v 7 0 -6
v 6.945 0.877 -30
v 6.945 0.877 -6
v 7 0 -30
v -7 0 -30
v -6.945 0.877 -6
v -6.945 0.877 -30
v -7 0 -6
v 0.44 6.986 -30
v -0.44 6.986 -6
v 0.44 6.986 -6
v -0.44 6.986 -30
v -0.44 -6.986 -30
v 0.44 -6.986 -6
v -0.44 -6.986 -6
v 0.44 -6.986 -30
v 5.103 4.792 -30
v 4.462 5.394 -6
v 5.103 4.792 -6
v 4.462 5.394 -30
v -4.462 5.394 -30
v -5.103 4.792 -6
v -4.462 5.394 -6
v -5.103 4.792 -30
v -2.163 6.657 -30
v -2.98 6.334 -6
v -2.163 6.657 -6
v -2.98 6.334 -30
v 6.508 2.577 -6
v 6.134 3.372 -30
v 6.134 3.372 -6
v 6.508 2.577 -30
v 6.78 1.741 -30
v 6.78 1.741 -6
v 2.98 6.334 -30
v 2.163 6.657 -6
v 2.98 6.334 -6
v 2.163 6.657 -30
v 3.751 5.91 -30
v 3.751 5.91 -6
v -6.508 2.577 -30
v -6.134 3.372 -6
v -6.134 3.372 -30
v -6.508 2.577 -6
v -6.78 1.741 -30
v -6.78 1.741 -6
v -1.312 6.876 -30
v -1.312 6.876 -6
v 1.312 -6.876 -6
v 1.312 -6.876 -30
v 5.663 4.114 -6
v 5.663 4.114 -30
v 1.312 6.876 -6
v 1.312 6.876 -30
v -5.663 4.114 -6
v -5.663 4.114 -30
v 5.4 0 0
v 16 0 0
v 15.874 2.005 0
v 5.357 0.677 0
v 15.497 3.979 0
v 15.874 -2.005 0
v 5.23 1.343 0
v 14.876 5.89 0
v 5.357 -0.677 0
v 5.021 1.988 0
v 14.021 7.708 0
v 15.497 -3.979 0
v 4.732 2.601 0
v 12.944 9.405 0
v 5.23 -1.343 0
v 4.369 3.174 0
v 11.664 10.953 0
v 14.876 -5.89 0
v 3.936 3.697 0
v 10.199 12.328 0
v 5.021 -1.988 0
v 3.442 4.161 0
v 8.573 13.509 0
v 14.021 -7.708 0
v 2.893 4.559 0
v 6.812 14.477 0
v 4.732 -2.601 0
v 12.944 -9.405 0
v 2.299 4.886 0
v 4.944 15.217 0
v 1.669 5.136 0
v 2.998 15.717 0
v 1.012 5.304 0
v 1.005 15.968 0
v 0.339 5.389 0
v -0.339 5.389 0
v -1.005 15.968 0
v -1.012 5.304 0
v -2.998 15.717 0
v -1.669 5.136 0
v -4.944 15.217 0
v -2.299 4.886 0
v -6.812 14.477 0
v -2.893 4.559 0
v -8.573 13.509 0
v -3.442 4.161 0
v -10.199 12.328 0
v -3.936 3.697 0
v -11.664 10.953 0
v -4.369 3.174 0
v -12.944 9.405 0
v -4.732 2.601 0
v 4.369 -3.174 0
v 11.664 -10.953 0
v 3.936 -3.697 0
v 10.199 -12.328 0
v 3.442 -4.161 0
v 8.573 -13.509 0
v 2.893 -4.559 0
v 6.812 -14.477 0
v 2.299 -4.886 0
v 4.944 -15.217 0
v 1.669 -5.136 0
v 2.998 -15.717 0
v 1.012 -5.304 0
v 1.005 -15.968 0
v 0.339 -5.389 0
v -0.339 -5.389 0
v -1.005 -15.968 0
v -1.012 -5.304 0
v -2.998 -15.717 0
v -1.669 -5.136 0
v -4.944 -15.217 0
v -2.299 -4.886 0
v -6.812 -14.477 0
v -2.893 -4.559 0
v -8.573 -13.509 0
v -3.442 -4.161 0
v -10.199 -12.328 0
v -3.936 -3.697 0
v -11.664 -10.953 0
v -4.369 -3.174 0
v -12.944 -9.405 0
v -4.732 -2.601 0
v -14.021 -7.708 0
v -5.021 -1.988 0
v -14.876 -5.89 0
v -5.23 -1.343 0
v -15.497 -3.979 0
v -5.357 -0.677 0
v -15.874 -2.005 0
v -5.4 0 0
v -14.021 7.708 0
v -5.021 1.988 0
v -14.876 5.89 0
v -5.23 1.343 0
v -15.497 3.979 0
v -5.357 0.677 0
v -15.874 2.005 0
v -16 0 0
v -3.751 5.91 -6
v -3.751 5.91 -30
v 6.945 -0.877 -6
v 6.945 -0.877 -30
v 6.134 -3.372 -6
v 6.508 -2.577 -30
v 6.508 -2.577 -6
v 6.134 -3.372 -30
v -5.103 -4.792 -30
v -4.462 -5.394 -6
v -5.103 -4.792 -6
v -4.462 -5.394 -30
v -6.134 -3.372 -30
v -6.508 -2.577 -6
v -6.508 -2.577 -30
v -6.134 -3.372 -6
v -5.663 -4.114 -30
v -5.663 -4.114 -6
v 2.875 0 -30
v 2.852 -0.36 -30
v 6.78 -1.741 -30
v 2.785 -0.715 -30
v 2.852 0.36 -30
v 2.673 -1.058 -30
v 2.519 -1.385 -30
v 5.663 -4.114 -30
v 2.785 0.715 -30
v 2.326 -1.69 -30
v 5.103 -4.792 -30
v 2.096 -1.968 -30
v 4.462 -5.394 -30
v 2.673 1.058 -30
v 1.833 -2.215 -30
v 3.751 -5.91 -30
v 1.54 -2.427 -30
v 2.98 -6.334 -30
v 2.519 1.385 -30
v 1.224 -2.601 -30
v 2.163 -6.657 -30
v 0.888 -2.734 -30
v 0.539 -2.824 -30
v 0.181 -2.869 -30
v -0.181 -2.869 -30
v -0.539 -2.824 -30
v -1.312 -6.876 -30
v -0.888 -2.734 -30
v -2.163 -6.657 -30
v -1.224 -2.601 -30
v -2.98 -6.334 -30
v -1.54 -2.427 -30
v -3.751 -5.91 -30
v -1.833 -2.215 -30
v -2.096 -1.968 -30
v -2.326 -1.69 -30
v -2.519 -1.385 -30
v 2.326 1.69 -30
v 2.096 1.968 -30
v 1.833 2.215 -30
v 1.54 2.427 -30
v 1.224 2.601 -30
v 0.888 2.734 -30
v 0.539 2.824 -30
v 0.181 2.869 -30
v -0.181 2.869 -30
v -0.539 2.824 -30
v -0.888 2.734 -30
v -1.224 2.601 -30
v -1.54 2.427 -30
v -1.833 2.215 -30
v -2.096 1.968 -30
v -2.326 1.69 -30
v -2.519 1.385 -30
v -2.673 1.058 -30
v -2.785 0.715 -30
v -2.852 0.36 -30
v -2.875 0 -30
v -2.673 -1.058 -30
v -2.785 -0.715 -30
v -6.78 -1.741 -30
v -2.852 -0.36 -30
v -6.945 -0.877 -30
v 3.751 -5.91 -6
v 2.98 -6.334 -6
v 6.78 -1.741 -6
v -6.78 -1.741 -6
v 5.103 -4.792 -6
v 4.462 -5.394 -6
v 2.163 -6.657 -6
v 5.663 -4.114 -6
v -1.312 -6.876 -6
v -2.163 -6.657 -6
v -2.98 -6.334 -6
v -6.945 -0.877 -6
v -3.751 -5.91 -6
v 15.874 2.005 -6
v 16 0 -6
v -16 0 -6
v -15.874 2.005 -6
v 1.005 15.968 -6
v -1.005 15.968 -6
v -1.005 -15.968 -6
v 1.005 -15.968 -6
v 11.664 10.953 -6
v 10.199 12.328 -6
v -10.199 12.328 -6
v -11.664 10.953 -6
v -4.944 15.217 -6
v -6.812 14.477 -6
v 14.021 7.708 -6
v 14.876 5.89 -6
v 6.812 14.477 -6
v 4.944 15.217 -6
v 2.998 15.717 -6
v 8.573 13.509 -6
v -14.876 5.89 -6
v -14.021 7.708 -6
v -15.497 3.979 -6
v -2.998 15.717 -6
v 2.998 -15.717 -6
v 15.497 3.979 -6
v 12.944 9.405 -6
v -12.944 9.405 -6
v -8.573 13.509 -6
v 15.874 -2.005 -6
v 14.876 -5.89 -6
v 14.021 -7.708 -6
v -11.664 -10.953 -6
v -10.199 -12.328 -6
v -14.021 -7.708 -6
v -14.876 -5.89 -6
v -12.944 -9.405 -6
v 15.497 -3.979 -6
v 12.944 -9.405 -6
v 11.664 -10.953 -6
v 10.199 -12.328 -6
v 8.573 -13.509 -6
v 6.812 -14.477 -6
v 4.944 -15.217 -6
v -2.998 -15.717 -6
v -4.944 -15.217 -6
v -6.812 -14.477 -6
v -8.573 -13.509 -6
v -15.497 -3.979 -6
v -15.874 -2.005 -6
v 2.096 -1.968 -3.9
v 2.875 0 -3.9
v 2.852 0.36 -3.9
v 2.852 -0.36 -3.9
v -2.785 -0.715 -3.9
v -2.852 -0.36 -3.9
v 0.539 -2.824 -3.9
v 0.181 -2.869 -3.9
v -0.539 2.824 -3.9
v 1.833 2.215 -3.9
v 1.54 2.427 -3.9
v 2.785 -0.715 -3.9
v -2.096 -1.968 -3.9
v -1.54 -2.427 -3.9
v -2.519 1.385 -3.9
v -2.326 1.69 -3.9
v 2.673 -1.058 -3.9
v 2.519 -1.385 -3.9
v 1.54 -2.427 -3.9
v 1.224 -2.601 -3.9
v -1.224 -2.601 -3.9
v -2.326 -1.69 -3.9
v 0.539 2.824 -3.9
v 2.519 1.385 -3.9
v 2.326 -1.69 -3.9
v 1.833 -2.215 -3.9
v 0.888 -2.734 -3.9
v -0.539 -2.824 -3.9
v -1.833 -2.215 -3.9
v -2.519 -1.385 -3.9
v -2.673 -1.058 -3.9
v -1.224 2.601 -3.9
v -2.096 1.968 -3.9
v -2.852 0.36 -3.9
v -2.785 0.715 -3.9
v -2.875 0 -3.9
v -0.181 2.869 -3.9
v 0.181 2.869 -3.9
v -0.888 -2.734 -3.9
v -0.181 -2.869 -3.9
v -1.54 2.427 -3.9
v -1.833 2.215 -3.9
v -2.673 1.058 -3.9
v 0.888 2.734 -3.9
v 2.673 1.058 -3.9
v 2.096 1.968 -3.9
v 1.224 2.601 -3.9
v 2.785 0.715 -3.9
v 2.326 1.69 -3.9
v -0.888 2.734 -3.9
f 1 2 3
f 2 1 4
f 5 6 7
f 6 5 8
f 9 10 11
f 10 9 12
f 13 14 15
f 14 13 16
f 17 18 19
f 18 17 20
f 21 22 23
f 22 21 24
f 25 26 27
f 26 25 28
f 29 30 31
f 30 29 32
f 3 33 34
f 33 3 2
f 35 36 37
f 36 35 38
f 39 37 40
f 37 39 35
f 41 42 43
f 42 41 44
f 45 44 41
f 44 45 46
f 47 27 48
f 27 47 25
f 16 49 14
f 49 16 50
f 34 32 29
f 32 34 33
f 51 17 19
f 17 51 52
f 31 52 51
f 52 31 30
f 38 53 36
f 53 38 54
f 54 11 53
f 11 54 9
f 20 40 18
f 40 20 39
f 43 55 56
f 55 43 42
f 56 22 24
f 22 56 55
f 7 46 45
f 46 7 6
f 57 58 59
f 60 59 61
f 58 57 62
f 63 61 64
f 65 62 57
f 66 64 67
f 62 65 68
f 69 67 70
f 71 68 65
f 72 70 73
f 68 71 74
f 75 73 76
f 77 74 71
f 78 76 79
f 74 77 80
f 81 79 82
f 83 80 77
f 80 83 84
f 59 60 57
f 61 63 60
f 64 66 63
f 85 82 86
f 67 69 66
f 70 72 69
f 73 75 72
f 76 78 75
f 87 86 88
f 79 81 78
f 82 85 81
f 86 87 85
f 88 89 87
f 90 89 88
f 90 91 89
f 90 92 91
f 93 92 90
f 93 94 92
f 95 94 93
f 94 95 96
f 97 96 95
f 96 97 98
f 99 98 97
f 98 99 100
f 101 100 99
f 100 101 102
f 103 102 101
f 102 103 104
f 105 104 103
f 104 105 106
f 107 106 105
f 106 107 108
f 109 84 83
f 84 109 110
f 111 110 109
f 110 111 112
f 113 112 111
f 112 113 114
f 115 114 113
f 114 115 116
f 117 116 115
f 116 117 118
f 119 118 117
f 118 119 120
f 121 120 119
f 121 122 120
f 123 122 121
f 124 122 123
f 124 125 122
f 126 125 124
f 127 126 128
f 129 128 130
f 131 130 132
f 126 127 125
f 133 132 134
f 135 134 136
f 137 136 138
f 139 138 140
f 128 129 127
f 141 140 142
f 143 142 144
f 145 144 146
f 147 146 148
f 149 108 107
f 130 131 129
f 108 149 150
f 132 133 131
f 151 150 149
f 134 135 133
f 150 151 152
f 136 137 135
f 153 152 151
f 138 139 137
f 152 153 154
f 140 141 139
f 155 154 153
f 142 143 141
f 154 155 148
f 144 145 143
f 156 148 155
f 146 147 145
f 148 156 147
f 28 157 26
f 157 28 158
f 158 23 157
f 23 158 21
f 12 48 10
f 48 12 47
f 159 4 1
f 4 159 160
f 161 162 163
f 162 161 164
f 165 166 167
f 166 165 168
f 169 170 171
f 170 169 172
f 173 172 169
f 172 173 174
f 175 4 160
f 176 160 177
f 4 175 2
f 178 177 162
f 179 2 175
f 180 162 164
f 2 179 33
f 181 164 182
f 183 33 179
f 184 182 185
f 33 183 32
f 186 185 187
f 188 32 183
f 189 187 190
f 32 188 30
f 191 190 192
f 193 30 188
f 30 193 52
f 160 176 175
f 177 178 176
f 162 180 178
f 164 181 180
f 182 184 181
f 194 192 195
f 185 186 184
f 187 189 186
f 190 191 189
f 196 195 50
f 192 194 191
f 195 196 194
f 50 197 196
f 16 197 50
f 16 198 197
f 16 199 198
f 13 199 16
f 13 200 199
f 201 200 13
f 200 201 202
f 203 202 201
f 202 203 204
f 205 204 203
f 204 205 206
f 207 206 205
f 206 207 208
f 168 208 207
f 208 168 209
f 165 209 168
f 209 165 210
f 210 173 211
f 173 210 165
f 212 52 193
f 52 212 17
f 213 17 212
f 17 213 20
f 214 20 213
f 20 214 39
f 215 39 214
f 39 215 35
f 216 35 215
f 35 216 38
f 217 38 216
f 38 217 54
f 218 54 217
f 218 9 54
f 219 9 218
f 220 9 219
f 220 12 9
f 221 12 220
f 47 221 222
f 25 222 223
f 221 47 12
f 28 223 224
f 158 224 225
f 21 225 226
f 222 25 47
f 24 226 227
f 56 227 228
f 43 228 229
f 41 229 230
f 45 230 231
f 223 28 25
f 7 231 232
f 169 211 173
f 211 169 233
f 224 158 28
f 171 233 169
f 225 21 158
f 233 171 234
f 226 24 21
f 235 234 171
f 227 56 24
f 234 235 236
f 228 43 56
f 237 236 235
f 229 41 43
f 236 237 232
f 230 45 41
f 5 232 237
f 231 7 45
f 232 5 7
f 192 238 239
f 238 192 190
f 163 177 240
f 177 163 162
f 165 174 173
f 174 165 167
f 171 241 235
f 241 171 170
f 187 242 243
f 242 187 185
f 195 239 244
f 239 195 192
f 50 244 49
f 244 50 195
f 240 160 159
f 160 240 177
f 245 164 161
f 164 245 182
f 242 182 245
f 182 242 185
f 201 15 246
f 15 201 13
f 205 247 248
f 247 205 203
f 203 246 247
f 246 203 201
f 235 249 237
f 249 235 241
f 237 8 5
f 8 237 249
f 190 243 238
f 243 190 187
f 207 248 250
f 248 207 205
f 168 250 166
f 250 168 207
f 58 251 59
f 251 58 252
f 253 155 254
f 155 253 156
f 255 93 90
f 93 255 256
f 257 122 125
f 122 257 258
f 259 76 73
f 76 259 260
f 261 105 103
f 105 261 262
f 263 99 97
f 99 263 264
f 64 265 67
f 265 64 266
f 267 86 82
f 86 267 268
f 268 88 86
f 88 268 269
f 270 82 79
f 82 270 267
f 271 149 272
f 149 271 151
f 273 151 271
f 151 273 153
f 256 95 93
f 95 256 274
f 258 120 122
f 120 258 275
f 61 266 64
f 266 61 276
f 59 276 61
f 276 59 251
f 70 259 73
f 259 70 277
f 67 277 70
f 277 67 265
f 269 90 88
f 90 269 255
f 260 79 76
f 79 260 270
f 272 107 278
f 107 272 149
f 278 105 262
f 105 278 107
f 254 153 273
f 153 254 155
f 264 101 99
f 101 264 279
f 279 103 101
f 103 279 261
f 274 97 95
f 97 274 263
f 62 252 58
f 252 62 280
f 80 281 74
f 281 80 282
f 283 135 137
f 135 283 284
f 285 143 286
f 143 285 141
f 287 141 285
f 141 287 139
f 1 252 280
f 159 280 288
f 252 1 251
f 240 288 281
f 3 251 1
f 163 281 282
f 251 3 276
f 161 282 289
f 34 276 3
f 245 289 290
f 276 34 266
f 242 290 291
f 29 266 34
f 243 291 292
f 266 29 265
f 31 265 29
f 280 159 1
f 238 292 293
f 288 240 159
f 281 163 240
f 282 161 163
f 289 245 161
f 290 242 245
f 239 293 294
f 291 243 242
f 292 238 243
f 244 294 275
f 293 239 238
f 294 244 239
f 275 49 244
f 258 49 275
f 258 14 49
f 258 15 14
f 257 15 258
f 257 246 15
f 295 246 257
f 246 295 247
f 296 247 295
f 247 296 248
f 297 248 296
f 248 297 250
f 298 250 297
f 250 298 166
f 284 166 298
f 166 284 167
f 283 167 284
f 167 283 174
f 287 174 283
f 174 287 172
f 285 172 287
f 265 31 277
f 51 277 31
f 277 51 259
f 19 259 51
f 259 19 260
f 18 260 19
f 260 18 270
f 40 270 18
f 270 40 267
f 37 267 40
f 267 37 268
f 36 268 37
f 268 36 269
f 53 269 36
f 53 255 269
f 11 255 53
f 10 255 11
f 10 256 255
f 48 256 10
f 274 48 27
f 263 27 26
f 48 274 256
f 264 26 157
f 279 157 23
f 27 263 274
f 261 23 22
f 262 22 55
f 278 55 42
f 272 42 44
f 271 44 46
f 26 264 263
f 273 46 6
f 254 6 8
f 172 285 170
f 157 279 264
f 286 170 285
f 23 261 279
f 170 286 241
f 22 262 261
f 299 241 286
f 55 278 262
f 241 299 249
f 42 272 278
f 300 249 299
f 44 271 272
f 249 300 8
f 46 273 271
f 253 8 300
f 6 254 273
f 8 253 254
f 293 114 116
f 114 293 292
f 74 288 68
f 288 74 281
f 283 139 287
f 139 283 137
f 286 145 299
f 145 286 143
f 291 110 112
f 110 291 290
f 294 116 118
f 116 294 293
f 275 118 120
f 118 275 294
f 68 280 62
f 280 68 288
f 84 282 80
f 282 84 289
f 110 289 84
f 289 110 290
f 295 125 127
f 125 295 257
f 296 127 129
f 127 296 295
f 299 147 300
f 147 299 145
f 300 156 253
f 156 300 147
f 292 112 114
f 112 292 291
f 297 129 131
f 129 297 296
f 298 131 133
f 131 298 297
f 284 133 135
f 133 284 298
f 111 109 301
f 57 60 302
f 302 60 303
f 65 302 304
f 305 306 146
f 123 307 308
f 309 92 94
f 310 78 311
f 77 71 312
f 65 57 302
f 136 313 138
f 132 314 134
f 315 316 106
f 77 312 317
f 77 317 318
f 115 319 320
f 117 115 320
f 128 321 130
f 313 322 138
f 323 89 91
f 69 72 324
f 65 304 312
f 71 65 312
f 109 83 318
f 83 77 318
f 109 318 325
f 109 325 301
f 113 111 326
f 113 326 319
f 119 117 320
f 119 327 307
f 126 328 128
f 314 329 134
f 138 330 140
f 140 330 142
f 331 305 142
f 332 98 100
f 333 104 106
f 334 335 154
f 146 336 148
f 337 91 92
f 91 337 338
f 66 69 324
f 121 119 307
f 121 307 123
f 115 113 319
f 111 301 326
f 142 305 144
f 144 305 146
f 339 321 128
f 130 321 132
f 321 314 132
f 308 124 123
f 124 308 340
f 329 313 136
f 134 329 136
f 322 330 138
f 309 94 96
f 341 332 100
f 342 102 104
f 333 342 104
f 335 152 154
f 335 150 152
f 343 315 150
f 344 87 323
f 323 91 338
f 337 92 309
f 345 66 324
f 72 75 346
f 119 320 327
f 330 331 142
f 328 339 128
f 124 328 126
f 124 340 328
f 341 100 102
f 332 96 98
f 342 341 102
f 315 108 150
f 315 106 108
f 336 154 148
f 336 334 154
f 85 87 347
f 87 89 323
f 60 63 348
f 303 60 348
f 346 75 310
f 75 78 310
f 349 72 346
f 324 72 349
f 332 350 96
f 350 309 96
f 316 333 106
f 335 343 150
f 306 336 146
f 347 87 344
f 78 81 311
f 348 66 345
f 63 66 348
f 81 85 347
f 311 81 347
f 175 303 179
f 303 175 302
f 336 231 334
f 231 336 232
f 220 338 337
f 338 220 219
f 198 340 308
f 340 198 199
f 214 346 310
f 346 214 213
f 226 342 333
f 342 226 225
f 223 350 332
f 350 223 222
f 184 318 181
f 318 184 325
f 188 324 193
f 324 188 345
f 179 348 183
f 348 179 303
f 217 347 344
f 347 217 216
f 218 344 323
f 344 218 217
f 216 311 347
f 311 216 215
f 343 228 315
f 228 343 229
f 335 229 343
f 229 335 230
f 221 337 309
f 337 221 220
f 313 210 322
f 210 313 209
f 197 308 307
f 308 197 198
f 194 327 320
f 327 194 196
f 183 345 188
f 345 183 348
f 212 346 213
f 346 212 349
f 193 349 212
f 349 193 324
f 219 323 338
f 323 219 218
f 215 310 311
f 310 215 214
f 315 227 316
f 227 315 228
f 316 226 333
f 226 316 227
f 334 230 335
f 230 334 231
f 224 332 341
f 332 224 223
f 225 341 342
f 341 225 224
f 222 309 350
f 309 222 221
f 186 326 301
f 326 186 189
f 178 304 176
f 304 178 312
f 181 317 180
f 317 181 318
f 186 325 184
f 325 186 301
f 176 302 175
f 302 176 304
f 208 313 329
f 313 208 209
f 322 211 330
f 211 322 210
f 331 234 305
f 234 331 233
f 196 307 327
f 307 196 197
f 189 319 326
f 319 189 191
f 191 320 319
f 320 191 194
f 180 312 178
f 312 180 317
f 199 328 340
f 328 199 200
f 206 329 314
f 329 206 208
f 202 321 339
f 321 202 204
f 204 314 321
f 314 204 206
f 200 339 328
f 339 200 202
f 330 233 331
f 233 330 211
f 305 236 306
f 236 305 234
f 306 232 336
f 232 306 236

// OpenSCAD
$fn = 50;


difference() {
	union() {
		translate(v = [0, 0, -30.0000000000]) {
			cylinder(h = 30, r = 7.0000000000);
		}
		translate(v = [0, 0, -6.0000000000]) {
			cylinder(h = 6, r = 16.0000000000);
		}
	}
	union() {
		translate(v = [0, 0, 0]) {
			rotate(a = [0, 0, 0]) {
				difference() {
					union() {
						#translate(v = [0, 0, -30.0000000000]) {
							cylinder(h = 30, r = 2.6000000000);
						}
						#translate(v = [0, 0, -3.9000000000]) {
							cylinder(h = 3.9000000000, r1 = 2.8750000000, r2 = 5.4000000000);
						}
						#translate(v = [0, 0, -30.0000000000]) {
							cylinder(h = 30, r = 2.8750000000);
						}
						#translate(v = [0, 0, -30.0000000000]) {
							cylinder(h = 30, r = 2.6000000000);
						}
					}
					union();
				}
			}
		}
	}
}
